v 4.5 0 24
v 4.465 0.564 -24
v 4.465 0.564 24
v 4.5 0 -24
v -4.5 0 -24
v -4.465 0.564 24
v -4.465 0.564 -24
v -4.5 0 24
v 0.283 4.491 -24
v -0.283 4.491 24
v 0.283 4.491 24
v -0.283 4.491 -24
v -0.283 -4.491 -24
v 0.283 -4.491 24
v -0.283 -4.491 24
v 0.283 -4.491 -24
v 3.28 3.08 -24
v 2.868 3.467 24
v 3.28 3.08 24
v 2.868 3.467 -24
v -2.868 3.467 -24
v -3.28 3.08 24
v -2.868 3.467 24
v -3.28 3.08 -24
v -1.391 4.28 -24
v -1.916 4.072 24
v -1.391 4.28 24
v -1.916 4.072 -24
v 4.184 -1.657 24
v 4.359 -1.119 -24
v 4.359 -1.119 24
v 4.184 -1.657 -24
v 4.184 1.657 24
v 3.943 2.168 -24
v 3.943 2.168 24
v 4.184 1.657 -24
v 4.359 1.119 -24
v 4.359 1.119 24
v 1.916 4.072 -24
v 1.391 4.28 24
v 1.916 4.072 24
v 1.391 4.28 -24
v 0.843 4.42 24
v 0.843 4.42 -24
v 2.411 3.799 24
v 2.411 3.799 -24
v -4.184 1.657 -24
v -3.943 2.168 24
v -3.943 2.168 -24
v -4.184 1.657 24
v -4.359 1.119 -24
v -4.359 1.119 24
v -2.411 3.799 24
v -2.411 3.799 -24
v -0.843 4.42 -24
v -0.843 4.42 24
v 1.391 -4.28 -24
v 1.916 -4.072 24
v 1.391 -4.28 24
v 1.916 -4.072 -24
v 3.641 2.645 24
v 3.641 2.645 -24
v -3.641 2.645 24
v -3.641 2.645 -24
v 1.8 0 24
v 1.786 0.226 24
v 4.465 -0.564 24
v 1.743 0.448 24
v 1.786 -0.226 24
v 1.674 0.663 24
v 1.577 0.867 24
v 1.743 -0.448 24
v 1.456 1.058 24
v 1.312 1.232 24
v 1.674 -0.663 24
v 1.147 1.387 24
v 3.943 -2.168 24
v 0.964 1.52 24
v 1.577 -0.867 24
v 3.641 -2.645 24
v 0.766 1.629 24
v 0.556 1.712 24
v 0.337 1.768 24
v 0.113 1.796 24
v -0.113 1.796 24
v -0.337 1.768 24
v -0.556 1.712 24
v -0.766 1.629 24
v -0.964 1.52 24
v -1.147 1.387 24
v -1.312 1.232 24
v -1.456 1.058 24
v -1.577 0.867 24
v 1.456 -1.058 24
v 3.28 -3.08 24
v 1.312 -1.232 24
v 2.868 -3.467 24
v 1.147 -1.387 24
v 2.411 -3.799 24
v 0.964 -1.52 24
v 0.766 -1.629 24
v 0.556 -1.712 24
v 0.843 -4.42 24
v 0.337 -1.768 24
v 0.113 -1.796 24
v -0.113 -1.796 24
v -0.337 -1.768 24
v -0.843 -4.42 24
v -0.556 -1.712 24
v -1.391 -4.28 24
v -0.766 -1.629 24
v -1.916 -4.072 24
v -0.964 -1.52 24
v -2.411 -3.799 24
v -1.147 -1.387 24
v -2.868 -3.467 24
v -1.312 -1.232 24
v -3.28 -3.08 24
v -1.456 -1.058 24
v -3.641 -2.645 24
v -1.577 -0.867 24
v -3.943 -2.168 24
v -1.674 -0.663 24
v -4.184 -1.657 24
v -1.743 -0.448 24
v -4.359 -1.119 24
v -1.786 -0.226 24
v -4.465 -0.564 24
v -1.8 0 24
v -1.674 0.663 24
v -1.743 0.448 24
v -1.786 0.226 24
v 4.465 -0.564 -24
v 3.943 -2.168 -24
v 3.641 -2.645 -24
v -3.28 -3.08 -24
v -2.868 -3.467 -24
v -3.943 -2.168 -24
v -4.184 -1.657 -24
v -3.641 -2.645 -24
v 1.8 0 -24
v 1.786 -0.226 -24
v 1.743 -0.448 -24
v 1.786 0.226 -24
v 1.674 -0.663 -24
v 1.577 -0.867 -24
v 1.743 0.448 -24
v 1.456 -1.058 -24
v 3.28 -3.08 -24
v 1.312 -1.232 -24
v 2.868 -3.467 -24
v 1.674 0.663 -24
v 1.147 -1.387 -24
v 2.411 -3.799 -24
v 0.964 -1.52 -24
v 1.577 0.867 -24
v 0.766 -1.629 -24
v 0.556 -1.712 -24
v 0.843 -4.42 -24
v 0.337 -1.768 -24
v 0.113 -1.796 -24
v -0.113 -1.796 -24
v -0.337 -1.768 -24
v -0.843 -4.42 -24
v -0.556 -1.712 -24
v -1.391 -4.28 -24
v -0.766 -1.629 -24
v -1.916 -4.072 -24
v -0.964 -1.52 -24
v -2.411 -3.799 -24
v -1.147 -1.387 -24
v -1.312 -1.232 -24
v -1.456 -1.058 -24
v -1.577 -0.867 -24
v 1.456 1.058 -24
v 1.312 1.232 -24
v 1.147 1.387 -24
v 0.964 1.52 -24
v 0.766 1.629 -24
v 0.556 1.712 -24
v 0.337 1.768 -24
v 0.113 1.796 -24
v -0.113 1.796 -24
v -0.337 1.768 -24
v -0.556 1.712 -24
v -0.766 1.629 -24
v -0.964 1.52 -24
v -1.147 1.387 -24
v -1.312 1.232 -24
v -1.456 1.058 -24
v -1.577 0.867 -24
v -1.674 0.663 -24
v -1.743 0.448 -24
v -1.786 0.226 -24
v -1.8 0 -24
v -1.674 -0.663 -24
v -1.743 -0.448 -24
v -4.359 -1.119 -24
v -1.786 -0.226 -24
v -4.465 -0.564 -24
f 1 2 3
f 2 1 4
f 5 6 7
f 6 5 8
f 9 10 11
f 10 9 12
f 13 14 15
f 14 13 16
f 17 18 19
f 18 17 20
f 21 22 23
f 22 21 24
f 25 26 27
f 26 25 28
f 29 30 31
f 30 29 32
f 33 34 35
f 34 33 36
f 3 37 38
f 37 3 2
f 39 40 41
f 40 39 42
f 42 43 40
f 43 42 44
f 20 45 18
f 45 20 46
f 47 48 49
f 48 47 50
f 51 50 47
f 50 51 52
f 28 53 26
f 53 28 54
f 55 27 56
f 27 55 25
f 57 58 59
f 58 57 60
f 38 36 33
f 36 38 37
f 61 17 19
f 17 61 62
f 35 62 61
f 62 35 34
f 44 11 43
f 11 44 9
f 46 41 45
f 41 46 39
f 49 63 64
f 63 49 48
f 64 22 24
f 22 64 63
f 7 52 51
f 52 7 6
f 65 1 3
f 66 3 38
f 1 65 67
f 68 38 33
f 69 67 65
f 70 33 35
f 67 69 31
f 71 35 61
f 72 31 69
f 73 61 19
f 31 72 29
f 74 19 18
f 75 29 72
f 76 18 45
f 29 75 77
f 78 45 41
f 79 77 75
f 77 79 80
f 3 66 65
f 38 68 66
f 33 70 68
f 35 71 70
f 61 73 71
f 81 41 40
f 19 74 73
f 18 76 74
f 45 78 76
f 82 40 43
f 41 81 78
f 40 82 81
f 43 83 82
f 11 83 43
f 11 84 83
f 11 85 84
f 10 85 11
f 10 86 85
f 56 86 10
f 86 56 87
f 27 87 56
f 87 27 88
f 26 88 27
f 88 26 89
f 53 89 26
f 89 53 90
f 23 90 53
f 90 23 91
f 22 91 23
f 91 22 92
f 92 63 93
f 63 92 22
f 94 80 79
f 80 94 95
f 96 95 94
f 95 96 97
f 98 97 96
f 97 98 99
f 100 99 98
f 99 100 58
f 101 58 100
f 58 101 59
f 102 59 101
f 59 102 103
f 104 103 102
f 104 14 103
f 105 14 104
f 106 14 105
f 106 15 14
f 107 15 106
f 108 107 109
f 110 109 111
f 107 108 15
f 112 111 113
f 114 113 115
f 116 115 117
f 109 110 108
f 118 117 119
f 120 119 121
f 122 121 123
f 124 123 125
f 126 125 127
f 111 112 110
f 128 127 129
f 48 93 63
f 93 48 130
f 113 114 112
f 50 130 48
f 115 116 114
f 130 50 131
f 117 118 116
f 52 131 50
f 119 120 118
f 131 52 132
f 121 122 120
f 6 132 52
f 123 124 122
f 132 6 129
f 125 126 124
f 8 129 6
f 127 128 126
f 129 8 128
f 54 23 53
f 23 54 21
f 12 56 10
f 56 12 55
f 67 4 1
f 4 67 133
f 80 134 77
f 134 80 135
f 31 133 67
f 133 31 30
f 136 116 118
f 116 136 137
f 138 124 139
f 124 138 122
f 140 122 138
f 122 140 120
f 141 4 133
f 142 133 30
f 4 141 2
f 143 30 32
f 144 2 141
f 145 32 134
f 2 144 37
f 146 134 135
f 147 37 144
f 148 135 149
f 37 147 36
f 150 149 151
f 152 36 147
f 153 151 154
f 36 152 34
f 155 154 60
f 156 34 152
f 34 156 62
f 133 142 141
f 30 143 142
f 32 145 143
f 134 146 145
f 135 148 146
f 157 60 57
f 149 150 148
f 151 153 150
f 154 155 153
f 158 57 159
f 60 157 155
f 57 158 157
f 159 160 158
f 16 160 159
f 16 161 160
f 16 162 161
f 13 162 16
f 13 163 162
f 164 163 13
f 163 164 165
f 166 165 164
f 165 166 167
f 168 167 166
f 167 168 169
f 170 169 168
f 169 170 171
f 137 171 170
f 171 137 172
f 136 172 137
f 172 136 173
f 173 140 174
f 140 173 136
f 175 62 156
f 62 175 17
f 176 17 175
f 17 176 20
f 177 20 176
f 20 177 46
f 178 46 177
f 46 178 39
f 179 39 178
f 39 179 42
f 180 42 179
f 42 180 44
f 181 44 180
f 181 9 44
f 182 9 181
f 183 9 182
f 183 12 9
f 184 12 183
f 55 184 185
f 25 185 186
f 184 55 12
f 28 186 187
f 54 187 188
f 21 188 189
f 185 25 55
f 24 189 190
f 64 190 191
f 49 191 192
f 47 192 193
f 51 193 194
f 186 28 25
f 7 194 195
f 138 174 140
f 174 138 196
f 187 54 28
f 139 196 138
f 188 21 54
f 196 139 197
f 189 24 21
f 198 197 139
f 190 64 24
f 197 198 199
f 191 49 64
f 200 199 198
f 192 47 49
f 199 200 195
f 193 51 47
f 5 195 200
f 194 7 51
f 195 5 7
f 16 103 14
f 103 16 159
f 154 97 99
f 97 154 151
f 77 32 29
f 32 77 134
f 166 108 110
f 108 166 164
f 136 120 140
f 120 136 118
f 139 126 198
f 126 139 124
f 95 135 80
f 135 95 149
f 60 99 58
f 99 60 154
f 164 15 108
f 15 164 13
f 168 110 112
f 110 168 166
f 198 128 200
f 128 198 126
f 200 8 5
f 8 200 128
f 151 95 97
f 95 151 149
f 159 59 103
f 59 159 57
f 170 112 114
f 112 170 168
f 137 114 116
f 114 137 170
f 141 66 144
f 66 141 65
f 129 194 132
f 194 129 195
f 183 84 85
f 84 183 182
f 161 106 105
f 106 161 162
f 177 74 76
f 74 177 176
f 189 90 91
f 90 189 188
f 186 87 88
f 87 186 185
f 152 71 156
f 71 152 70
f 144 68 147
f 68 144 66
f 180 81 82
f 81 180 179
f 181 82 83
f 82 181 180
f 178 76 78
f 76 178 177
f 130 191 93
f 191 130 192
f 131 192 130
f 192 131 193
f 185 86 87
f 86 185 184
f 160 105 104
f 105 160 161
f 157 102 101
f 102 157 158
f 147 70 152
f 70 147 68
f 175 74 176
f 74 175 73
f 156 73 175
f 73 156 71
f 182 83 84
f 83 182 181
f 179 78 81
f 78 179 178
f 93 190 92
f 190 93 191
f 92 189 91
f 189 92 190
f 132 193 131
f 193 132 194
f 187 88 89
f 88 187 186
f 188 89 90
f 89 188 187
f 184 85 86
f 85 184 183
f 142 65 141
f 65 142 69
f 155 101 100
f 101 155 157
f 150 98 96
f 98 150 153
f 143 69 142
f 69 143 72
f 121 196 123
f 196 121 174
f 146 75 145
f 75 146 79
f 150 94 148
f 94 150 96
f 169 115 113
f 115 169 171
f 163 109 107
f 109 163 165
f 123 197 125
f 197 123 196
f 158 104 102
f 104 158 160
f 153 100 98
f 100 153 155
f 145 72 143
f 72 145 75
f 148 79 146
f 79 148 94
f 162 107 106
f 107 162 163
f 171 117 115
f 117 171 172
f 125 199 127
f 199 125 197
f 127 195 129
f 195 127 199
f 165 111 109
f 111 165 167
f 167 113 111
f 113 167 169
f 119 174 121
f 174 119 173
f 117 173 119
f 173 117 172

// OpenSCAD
$fn = 50;


difference() {
	union() {
		translate(v = [0, 0, -24.0000000000]) {
			cylinder(h = 48, r = 4.5000000000);
		}
	}
	union() {
		translate(v = [0, 0, -100.0000000000]) {
			cylinder(h = 200, r = 1.8000000000);
		}
	}
}
